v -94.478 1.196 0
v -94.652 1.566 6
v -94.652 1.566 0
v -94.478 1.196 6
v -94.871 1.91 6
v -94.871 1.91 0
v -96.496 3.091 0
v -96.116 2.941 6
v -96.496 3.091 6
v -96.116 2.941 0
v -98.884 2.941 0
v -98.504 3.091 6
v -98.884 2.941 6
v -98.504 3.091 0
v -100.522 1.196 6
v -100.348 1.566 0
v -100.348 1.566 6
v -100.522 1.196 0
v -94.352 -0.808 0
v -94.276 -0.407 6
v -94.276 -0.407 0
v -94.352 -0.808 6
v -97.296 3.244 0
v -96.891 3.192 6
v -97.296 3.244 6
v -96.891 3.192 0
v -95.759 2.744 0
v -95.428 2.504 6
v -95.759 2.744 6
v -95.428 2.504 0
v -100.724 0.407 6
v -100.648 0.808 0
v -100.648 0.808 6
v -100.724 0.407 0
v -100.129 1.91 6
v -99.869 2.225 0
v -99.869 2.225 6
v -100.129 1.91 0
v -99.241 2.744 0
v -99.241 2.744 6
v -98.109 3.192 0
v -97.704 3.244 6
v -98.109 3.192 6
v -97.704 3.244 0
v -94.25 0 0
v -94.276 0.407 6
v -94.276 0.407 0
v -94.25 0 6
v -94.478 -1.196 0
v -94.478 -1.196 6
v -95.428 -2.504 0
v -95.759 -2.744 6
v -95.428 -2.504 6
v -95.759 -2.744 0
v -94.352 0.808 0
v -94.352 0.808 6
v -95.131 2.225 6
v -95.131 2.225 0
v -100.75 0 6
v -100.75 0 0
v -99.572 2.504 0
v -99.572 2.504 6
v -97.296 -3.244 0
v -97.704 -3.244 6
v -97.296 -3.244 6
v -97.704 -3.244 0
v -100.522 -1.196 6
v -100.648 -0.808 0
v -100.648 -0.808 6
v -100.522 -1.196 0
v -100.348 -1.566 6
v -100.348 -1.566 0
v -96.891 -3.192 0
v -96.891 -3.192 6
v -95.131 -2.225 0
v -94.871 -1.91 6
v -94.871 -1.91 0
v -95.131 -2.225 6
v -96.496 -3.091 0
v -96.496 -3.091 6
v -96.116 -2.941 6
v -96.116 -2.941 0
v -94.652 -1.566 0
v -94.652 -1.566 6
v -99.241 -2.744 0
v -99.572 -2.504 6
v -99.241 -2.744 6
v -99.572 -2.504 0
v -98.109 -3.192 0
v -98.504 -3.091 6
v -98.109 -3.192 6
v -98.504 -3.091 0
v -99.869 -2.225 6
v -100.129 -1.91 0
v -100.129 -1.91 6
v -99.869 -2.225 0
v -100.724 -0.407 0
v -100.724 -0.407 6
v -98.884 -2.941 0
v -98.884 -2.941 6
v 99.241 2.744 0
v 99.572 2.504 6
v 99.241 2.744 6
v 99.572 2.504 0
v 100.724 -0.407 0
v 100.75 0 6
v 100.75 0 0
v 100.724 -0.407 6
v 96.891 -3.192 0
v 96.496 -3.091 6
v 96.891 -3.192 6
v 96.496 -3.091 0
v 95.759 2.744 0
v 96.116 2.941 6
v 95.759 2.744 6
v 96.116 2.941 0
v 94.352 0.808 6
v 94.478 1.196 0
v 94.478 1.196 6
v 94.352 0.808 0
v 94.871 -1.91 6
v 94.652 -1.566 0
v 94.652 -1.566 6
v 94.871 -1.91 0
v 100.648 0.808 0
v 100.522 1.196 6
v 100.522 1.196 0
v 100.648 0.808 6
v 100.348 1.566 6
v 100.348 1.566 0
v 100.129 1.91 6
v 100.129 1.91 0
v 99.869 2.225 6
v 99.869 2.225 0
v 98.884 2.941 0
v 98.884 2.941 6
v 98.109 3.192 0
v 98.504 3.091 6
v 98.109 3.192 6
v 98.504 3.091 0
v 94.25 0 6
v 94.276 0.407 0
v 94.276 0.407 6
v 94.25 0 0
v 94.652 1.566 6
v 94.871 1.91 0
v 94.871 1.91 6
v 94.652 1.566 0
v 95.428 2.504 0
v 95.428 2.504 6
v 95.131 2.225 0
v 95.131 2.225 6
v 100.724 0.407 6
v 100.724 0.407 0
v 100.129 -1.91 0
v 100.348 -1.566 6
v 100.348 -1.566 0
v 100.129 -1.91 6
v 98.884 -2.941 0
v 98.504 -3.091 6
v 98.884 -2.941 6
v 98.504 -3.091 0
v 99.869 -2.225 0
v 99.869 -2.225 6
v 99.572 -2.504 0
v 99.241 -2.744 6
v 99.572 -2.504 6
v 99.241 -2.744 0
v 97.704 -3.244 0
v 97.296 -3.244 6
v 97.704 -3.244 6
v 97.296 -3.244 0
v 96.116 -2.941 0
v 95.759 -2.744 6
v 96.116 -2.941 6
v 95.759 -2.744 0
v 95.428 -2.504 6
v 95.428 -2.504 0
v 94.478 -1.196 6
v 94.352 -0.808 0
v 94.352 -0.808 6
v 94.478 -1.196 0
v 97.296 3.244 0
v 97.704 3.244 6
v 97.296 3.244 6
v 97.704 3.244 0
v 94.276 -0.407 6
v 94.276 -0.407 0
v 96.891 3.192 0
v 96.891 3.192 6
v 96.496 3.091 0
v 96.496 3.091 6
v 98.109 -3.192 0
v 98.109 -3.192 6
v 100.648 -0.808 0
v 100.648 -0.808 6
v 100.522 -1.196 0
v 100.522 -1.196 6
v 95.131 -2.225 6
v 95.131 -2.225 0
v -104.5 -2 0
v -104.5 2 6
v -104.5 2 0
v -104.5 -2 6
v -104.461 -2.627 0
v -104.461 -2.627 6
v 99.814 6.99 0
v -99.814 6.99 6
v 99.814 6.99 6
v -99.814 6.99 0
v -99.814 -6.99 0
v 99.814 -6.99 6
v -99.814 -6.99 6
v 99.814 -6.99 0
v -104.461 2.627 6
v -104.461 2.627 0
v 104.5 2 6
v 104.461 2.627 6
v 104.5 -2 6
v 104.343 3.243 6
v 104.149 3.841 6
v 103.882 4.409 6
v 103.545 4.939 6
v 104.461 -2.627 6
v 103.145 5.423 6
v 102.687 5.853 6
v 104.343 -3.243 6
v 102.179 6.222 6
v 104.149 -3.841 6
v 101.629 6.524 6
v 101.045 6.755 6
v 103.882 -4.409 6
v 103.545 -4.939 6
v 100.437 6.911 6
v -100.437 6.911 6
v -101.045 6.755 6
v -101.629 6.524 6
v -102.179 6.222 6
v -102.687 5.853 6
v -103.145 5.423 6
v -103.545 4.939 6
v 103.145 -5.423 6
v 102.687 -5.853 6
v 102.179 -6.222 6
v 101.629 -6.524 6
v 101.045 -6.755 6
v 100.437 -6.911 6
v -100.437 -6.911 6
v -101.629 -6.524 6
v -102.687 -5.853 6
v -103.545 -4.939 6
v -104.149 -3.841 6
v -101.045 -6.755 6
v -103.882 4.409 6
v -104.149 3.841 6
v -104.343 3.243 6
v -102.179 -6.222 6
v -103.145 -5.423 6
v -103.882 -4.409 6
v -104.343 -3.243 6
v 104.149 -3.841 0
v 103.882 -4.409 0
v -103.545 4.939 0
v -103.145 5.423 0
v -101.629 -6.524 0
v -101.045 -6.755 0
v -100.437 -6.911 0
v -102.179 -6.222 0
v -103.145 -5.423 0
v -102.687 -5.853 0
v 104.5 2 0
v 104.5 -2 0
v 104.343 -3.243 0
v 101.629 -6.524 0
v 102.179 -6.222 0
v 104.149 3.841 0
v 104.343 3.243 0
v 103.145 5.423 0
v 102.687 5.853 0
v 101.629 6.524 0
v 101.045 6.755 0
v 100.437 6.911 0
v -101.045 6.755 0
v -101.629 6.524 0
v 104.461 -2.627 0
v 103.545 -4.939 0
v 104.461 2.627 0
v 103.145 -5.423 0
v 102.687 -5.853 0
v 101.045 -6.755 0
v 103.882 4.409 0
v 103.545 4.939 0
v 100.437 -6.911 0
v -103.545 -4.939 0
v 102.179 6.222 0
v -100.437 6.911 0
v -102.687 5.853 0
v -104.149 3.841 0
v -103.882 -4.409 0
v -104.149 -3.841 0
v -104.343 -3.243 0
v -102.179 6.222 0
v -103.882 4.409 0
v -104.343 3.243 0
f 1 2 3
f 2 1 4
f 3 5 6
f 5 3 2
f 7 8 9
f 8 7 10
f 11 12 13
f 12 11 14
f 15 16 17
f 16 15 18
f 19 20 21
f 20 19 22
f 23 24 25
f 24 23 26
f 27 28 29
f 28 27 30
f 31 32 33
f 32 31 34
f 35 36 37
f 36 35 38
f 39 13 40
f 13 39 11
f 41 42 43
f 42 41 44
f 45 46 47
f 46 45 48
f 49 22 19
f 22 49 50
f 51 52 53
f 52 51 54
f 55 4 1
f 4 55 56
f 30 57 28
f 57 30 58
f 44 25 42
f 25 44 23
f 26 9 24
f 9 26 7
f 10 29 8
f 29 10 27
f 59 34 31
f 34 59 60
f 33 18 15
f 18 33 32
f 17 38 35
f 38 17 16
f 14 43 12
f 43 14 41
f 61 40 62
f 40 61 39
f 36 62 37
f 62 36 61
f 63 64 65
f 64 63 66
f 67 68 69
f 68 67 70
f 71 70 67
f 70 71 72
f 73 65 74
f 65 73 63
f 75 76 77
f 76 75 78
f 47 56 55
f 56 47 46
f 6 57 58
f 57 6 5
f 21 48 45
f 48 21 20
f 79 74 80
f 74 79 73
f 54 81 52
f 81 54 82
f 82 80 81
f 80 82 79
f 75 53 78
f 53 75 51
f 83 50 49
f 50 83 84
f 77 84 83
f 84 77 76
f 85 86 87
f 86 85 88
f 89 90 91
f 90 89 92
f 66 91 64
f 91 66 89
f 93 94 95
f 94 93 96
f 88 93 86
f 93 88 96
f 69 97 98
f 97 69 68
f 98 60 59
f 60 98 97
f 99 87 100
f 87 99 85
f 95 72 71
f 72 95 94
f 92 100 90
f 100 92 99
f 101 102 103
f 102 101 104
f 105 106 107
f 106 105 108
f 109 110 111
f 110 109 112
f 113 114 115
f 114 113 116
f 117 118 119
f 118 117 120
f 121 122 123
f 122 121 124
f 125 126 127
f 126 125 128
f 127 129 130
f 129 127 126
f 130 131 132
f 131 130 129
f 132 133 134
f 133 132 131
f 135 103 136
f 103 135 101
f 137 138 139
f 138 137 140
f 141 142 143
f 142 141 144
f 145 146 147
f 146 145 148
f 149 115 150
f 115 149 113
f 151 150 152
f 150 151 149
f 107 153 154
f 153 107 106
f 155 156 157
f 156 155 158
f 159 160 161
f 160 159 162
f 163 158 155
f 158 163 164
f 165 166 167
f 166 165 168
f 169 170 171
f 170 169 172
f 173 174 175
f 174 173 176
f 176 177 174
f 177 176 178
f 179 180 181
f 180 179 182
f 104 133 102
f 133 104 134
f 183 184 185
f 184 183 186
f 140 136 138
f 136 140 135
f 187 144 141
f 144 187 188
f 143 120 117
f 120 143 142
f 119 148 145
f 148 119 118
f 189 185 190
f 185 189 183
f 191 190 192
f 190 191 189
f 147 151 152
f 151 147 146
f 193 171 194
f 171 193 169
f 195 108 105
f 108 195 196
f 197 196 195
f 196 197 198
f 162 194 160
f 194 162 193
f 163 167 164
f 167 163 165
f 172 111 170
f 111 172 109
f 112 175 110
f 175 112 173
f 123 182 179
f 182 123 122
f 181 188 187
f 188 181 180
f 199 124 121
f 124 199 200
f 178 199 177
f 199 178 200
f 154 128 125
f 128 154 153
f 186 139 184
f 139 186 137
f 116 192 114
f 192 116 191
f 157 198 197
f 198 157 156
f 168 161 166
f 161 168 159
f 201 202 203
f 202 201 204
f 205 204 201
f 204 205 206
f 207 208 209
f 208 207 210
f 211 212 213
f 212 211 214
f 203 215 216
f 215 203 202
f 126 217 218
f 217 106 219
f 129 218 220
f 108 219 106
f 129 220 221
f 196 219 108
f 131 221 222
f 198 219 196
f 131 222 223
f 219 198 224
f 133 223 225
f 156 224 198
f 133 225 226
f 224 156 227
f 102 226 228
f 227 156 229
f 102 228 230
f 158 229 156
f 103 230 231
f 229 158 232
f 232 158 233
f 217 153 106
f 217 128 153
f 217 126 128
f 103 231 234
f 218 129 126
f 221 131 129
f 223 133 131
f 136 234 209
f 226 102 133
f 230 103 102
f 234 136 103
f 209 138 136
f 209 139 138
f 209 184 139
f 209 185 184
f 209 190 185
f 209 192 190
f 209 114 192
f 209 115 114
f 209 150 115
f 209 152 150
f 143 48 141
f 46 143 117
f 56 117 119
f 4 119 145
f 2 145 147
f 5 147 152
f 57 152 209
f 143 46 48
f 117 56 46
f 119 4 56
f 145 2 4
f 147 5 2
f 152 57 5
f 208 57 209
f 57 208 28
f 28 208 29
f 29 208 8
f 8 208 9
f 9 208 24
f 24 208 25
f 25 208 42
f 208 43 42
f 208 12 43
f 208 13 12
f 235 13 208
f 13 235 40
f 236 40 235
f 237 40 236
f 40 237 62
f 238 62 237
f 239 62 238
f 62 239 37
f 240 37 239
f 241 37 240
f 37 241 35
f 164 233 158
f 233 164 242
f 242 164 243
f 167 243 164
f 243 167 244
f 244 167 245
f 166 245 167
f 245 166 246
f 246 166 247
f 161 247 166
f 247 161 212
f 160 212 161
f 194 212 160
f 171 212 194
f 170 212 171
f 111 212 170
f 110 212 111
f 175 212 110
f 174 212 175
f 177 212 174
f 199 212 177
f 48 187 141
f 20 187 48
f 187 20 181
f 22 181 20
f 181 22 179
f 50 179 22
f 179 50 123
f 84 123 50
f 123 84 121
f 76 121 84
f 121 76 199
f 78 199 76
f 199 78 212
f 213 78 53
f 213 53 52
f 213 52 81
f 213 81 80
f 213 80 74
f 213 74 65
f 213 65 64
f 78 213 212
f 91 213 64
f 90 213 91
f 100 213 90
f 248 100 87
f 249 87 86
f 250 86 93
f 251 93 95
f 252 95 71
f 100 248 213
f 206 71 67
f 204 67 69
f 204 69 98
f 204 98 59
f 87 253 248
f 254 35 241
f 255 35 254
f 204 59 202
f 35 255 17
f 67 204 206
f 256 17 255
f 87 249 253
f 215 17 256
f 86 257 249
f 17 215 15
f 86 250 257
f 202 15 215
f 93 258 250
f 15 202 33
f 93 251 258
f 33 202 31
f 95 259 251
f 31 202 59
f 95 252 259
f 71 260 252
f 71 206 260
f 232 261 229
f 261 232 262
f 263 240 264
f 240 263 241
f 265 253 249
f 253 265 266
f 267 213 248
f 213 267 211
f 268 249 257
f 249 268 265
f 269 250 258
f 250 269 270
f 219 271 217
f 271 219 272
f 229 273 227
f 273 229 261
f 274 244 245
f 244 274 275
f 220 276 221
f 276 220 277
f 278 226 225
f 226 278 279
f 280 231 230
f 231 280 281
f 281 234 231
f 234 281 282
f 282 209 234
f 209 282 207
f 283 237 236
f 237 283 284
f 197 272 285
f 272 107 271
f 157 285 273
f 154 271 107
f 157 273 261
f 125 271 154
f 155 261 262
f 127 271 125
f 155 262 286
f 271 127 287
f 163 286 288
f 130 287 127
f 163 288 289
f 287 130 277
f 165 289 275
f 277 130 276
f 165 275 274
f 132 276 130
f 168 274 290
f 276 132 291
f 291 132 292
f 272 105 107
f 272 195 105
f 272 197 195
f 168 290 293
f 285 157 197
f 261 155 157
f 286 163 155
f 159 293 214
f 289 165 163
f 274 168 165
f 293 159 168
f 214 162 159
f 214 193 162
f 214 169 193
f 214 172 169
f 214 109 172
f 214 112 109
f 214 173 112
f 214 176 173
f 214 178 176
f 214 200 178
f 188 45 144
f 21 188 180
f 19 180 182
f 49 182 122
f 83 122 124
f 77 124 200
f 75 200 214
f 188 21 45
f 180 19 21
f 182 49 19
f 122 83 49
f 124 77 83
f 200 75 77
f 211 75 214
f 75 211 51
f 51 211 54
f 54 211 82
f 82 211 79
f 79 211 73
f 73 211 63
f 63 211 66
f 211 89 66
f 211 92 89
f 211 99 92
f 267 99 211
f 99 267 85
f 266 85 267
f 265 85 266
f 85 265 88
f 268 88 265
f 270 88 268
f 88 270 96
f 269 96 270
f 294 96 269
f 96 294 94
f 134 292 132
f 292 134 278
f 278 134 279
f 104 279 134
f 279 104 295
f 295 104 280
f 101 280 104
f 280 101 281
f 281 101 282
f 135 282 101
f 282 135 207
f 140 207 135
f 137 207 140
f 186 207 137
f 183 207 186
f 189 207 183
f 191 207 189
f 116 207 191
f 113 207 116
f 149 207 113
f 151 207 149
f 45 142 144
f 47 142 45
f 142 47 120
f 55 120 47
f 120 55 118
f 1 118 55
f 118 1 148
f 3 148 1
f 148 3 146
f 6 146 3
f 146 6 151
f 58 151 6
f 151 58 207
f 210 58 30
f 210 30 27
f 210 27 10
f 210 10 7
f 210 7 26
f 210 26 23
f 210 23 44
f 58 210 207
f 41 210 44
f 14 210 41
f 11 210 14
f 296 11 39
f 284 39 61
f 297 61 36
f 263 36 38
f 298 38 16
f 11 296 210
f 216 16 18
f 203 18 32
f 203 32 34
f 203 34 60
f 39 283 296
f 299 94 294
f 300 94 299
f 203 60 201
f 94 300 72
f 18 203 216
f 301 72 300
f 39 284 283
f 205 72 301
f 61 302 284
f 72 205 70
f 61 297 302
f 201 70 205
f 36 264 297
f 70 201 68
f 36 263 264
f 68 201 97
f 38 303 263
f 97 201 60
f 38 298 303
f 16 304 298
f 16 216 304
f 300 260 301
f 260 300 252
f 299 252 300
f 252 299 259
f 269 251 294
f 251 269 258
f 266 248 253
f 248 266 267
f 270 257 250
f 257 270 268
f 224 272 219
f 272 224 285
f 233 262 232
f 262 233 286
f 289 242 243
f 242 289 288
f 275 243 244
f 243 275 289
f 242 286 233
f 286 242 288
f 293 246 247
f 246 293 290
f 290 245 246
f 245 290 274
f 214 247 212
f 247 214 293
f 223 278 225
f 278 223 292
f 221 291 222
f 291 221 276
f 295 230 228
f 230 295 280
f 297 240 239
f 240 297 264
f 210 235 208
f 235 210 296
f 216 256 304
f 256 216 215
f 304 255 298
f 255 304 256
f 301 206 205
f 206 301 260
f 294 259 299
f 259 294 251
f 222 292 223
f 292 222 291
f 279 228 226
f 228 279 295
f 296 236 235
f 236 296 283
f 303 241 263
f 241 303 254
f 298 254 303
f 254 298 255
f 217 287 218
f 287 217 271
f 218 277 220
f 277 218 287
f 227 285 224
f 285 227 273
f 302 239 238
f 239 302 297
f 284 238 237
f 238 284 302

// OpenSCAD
$fn = 50;


difference() {
	union() {
		hull() {
			translate(v = [-99.5000000000, 2.0000000000, 0]) {
				cylinder(h = 6, r = 5);
			}
			translate(v = [99.5000000000, 2.0000000000, 0]) {
				cylinder(h = 6, r = 5);
			}
			translate(v = [-99.5000000000, -2.0000000000, 0]) {
				cylinder(h = 6, r = 5);
			}
			translate(v = [99.5000000000, -2.0000000000, 0]) {
				cylinder(h = 6, r = 5);
			}
		}
	}
	union() {
		translate(v = [-97.5000000000, 0.0000000000, 0]) {
			cylinder(h = 6, r = 3.2500000000);
		}
		translate(v = [97.5000000000, 0.0000000000, 0]) {
			cylinder(h = 6, r = 3.2500000000);
		}
		translate(v = [-97.5000000000, 0.0000000000, 0]) {
			cylinder(h = 6, r = 1.8000000000);
		}
		translate(v = [97.5000000000, 0.0000000000, 0]) {
			cylinder(h = 6, r = 1.8000000000);
		}
		translate(v = [-97.5000000000, 0.0000000000, 0]) {
			cylinder(h = 6, r = 1.8000000000);
		}
		translate(v = [97.5000000000, 0.0000000000, 0]) {
			cylinder(h = 6, r = 1.8000000000);
		}
		translate(v = [-97.5000000000, 0.0000000000, 0]) {
			cylinder(h = 6, r = 1.8000000000);
		}
		translate(v = [97.5000000000, 0.0000000000, 0]) {
			cylinder(h = 6, r = 1.8000000000);
		}
	}
}
